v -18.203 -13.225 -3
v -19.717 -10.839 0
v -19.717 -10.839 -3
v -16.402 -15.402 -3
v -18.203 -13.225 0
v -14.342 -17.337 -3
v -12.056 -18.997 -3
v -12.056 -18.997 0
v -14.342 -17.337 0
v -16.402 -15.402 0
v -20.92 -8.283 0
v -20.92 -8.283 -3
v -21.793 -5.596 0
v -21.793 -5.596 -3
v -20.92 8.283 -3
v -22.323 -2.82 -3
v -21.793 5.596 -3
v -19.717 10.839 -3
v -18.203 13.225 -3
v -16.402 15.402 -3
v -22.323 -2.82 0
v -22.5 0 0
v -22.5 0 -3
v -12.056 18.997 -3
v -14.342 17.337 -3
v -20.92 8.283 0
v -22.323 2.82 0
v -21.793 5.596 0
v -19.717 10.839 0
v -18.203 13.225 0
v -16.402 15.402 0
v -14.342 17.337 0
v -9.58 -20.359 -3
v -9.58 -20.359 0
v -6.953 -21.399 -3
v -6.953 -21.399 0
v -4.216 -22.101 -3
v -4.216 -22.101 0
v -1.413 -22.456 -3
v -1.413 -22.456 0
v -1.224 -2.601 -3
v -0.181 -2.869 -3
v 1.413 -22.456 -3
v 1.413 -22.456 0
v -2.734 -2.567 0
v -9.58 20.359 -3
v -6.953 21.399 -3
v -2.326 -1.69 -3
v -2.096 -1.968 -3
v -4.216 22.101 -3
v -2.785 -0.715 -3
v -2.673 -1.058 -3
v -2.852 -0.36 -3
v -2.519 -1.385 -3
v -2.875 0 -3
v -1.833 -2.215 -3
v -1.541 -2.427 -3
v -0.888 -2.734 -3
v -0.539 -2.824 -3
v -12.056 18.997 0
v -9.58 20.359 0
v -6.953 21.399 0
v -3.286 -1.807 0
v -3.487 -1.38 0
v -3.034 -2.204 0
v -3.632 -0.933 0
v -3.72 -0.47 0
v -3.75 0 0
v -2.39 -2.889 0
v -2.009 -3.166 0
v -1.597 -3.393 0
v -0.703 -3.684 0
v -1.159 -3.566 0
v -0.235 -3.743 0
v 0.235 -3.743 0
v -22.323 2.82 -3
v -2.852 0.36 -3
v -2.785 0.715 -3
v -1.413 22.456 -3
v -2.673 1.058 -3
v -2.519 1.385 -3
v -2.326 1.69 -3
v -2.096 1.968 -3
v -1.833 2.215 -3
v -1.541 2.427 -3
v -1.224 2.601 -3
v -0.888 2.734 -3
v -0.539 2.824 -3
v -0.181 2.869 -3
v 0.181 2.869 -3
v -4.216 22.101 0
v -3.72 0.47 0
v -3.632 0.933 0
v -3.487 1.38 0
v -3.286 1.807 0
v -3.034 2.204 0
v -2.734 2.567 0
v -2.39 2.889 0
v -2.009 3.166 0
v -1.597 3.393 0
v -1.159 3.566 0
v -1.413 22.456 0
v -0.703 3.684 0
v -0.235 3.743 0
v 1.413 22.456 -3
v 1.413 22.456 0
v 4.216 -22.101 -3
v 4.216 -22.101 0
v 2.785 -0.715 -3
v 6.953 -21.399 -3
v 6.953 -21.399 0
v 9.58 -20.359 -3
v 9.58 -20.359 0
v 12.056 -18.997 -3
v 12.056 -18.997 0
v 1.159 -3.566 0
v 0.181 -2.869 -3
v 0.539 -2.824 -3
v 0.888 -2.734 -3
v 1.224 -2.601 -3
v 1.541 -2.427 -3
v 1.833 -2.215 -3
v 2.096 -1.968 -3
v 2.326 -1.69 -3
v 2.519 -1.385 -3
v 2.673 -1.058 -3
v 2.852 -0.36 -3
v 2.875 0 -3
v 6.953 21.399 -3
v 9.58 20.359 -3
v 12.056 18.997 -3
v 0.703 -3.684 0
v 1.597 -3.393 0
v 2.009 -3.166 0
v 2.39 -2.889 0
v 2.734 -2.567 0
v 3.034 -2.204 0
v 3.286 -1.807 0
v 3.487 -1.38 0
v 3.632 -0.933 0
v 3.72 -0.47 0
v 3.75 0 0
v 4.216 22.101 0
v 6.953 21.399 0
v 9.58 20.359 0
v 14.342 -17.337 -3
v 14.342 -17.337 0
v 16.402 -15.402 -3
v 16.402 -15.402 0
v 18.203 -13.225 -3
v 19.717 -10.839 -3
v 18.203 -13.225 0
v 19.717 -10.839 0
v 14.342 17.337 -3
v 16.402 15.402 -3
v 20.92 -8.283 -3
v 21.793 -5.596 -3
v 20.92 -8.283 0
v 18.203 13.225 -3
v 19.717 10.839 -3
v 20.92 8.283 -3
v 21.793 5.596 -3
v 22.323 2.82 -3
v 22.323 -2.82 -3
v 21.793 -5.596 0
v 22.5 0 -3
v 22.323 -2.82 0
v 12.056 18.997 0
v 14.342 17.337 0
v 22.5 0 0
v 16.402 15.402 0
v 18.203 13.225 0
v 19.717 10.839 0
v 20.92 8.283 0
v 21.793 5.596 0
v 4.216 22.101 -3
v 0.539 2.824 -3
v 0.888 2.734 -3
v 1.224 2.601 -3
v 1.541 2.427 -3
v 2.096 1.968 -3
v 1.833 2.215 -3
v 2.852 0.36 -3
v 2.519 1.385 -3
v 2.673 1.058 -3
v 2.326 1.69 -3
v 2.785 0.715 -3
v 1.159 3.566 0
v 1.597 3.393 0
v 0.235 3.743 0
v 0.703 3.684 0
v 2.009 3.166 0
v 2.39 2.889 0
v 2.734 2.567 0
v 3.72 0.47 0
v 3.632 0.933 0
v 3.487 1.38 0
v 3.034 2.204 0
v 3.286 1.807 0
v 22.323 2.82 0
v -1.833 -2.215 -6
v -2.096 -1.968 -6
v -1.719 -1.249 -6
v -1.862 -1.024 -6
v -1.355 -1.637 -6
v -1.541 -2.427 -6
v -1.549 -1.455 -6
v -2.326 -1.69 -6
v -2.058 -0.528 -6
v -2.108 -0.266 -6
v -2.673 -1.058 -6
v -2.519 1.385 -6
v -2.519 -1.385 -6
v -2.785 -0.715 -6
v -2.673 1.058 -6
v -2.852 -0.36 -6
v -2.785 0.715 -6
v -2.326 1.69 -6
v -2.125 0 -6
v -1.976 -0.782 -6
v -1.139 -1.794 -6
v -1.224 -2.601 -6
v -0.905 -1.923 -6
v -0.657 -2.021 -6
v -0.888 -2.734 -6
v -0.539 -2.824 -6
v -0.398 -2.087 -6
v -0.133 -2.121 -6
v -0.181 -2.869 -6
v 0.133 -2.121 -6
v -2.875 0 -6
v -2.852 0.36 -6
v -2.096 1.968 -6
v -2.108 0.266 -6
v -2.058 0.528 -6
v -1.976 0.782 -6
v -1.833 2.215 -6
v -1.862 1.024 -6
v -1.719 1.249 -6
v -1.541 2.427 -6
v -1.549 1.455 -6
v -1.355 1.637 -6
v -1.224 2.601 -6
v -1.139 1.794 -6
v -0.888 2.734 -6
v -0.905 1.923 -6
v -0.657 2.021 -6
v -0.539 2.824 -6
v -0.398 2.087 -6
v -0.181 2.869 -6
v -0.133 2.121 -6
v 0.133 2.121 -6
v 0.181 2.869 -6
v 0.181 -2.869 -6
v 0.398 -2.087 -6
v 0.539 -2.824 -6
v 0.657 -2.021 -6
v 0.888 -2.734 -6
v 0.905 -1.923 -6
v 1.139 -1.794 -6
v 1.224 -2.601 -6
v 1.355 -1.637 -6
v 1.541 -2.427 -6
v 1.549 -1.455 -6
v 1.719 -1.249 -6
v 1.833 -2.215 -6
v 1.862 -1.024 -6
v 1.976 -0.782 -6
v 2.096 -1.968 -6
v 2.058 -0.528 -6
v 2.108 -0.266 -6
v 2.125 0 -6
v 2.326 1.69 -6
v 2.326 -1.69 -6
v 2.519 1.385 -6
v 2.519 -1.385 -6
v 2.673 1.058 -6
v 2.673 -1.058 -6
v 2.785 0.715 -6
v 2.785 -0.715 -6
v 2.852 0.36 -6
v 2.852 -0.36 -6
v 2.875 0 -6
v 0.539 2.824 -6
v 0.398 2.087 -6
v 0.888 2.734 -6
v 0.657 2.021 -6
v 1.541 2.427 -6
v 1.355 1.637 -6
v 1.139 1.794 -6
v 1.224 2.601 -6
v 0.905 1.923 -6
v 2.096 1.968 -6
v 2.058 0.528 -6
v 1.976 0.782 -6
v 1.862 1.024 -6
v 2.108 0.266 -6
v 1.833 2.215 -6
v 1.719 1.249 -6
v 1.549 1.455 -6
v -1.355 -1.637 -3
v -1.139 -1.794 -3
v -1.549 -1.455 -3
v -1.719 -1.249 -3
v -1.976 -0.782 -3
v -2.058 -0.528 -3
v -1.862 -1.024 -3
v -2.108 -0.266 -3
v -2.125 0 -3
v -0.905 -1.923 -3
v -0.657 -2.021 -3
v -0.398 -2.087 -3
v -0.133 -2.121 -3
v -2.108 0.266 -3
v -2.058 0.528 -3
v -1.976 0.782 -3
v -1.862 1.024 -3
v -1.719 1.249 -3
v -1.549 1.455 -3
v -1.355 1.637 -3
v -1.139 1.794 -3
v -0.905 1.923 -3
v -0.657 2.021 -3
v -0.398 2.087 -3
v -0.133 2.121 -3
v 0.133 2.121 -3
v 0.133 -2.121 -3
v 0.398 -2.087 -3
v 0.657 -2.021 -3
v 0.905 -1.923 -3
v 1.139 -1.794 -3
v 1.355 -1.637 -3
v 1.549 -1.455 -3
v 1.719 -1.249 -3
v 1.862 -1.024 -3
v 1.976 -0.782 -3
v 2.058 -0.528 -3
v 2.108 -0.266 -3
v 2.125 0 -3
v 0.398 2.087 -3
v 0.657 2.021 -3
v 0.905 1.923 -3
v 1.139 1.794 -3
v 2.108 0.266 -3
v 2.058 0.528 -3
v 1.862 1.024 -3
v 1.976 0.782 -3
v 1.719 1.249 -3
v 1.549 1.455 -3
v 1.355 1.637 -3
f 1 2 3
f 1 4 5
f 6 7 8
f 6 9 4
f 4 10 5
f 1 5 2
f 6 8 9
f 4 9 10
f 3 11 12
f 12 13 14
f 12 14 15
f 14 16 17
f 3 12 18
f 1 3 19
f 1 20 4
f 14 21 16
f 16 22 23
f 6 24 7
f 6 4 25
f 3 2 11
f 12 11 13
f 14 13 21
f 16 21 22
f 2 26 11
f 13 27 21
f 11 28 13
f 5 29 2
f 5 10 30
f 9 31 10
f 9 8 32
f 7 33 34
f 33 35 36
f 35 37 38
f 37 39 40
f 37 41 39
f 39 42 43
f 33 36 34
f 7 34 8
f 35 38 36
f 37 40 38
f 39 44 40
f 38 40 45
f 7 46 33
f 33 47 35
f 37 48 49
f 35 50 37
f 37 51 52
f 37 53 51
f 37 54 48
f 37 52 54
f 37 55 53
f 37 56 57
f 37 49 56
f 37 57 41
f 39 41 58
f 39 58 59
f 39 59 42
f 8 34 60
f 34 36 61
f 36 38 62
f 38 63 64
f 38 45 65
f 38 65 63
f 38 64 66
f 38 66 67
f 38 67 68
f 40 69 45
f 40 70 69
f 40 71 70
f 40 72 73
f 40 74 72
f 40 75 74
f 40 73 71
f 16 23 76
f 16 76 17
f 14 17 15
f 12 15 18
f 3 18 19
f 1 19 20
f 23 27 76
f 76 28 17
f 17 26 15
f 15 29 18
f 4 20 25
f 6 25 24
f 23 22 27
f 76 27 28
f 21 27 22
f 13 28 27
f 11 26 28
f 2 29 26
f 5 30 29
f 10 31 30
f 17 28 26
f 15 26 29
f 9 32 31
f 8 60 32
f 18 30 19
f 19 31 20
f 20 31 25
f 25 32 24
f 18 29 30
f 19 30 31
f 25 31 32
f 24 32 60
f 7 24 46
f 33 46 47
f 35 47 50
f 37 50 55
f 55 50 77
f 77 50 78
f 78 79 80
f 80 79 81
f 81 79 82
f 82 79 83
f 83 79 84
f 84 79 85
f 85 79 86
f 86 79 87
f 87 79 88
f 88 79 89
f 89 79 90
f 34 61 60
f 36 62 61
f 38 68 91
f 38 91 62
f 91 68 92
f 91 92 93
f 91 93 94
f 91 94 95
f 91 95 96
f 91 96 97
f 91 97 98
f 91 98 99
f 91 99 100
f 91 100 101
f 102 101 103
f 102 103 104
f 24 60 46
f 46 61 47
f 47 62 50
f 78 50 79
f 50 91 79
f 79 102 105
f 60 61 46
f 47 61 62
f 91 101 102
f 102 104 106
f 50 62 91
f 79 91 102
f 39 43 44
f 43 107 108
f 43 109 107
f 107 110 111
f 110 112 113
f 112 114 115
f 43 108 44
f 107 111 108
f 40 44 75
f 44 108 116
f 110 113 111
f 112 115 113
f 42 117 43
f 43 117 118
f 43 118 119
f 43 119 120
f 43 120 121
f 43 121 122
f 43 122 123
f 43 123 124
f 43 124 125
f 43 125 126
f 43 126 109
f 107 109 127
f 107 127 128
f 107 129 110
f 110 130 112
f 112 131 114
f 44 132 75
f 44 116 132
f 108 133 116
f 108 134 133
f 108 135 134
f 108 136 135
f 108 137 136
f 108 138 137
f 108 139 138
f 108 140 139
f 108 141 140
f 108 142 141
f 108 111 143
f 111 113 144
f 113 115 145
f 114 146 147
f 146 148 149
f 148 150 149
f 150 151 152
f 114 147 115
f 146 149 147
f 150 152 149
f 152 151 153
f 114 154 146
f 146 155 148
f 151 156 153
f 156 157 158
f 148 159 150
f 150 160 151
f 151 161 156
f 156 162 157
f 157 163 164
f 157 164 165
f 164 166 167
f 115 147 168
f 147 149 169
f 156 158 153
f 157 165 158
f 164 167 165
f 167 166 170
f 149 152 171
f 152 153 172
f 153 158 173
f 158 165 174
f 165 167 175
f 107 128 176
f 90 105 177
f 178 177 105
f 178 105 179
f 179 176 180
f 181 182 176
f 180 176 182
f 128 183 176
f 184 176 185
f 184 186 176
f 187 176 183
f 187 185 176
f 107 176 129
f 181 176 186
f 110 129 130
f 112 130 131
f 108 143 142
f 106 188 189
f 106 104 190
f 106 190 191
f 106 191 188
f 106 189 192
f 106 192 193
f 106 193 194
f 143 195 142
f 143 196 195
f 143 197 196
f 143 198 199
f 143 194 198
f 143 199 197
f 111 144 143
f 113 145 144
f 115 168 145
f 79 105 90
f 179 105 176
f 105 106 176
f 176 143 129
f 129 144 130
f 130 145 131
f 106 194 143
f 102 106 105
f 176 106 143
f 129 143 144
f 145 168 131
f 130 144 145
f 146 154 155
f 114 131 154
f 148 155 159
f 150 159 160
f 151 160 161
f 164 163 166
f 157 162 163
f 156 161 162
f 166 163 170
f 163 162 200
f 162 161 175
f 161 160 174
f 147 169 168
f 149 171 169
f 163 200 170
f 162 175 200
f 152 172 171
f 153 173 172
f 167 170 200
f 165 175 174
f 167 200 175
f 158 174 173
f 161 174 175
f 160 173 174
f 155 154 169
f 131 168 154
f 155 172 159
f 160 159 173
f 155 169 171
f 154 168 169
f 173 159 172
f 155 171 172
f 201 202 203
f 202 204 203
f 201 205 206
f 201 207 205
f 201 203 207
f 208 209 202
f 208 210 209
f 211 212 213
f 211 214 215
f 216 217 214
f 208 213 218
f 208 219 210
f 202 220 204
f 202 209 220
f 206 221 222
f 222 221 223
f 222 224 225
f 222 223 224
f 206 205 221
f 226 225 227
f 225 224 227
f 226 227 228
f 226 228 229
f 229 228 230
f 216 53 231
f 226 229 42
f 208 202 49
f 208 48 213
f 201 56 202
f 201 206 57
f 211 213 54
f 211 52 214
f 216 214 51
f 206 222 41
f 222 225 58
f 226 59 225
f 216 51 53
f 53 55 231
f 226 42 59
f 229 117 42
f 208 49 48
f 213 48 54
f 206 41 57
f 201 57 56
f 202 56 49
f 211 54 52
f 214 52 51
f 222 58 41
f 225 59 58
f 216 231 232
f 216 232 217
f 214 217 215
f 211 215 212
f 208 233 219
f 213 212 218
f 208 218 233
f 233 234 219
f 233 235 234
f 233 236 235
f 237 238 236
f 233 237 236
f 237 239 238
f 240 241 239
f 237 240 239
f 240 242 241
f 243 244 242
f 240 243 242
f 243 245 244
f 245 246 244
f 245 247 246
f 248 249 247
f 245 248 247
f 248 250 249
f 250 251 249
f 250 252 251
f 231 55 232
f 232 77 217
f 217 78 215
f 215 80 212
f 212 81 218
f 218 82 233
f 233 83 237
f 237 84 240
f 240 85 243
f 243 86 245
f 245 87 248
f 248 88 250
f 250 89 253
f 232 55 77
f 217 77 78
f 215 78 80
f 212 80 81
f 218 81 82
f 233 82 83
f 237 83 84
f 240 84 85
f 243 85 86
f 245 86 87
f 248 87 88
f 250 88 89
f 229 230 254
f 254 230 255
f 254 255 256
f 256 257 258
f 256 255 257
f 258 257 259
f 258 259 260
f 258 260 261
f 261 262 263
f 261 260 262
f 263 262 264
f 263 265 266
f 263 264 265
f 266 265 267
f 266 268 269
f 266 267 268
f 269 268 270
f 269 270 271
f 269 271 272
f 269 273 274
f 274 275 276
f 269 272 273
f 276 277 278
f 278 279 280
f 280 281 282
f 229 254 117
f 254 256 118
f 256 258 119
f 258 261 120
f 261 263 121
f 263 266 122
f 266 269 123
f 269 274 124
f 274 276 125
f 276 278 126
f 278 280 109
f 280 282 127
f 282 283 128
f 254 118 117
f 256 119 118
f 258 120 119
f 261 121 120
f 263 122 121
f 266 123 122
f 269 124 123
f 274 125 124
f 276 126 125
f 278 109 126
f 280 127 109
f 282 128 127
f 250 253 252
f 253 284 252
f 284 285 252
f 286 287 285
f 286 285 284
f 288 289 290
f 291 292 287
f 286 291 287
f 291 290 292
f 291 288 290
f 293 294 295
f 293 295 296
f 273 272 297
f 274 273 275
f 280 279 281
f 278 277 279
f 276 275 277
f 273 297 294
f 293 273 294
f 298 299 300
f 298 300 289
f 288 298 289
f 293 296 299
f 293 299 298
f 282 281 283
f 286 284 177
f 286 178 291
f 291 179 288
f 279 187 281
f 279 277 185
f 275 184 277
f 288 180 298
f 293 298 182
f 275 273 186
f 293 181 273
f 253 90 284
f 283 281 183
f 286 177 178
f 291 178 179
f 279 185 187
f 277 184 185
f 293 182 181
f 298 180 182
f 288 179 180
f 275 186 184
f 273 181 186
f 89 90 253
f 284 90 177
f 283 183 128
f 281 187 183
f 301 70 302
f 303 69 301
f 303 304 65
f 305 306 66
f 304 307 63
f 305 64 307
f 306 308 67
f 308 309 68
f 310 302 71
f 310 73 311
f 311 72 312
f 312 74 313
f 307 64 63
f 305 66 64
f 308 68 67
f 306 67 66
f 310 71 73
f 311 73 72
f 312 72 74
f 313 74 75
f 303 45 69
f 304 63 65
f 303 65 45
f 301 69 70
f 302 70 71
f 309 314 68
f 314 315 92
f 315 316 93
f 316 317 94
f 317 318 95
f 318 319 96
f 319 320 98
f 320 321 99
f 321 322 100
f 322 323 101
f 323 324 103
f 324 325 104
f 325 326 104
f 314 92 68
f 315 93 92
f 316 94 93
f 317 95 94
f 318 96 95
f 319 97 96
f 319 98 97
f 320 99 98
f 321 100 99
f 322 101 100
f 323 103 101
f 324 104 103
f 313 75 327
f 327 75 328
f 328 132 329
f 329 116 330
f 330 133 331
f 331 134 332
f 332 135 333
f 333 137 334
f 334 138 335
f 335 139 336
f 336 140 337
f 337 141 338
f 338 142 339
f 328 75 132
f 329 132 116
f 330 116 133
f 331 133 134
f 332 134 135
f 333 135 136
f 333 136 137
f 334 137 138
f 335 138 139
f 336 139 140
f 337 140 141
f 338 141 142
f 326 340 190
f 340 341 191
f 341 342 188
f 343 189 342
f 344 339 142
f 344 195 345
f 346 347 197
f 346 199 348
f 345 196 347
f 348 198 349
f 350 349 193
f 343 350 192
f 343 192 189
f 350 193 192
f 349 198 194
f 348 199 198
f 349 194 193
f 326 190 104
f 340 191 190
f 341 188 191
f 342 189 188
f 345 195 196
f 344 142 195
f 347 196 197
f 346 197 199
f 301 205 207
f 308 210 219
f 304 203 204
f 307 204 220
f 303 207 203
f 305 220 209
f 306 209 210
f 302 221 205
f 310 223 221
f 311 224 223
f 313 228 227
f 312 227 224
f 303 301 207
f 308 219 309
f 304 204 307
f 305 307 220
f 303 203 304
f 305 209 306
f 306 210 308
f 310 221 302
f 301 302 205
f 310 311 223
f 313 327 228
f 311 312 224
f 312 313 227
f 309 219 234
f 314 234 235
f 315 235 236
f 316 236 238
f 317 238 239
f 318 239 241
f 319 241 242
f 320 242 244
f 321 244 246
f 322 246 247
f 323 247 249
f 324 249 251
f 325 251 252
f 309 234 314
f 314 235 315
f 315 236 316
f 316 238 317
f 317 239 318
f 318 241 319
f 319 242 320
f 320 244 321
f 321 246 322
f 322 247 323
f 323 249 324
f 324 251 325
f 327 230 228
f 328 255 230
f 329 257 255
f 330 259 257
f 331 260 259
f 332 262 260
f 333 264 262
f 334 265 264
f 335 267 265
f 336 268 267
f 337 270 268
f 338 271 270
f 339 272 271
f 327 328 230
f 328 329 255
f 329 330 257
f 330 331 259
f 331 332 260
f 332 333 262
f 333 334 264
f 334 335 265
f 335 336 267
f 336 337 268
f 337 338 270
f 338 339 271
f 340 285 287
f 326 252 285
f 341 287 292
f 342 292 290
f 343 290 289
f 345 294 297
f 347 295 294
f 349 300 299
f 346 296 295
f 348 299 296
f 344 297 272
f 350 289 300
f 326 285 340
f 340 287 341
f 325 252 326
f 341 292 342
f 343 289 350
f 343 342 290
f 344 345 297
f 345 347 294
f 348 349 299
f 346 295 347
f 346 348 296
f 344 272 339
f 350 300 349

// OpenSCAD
$fn = 50;

difference() {
	union() {
		translate(v = [0, 0, -3.0]) {
			cylinder(h = 3, r = 22.5);
		}
		#translate(v = [0, 0, -6.0]) {
			cylinder(h = 6, r = 2.875);
		}
	}
	union() {
		translate(v = [0, 0, 0]) {
			rotate(a = [0, 0, 0]) {
				difference() {
					union() {
						translate(v = [0, 0, -6.0]) {
							cylinder(h = 6, r = 2.0);
						}
						translate(v = [0, 0, -3]) {
							cylinder(h = 3, r1 = 2.125, r2 = 3.75);
						}
						translate(v = [0, 0, -6.0]) {
							cylinder(h = 6, r = 2.125);
						}
						translate(v = [0, 0, -6.0]) {
							cylinder(h = 6, r = 2.0);
						}
					}
					union();
				}
			}
		}
	}
}
